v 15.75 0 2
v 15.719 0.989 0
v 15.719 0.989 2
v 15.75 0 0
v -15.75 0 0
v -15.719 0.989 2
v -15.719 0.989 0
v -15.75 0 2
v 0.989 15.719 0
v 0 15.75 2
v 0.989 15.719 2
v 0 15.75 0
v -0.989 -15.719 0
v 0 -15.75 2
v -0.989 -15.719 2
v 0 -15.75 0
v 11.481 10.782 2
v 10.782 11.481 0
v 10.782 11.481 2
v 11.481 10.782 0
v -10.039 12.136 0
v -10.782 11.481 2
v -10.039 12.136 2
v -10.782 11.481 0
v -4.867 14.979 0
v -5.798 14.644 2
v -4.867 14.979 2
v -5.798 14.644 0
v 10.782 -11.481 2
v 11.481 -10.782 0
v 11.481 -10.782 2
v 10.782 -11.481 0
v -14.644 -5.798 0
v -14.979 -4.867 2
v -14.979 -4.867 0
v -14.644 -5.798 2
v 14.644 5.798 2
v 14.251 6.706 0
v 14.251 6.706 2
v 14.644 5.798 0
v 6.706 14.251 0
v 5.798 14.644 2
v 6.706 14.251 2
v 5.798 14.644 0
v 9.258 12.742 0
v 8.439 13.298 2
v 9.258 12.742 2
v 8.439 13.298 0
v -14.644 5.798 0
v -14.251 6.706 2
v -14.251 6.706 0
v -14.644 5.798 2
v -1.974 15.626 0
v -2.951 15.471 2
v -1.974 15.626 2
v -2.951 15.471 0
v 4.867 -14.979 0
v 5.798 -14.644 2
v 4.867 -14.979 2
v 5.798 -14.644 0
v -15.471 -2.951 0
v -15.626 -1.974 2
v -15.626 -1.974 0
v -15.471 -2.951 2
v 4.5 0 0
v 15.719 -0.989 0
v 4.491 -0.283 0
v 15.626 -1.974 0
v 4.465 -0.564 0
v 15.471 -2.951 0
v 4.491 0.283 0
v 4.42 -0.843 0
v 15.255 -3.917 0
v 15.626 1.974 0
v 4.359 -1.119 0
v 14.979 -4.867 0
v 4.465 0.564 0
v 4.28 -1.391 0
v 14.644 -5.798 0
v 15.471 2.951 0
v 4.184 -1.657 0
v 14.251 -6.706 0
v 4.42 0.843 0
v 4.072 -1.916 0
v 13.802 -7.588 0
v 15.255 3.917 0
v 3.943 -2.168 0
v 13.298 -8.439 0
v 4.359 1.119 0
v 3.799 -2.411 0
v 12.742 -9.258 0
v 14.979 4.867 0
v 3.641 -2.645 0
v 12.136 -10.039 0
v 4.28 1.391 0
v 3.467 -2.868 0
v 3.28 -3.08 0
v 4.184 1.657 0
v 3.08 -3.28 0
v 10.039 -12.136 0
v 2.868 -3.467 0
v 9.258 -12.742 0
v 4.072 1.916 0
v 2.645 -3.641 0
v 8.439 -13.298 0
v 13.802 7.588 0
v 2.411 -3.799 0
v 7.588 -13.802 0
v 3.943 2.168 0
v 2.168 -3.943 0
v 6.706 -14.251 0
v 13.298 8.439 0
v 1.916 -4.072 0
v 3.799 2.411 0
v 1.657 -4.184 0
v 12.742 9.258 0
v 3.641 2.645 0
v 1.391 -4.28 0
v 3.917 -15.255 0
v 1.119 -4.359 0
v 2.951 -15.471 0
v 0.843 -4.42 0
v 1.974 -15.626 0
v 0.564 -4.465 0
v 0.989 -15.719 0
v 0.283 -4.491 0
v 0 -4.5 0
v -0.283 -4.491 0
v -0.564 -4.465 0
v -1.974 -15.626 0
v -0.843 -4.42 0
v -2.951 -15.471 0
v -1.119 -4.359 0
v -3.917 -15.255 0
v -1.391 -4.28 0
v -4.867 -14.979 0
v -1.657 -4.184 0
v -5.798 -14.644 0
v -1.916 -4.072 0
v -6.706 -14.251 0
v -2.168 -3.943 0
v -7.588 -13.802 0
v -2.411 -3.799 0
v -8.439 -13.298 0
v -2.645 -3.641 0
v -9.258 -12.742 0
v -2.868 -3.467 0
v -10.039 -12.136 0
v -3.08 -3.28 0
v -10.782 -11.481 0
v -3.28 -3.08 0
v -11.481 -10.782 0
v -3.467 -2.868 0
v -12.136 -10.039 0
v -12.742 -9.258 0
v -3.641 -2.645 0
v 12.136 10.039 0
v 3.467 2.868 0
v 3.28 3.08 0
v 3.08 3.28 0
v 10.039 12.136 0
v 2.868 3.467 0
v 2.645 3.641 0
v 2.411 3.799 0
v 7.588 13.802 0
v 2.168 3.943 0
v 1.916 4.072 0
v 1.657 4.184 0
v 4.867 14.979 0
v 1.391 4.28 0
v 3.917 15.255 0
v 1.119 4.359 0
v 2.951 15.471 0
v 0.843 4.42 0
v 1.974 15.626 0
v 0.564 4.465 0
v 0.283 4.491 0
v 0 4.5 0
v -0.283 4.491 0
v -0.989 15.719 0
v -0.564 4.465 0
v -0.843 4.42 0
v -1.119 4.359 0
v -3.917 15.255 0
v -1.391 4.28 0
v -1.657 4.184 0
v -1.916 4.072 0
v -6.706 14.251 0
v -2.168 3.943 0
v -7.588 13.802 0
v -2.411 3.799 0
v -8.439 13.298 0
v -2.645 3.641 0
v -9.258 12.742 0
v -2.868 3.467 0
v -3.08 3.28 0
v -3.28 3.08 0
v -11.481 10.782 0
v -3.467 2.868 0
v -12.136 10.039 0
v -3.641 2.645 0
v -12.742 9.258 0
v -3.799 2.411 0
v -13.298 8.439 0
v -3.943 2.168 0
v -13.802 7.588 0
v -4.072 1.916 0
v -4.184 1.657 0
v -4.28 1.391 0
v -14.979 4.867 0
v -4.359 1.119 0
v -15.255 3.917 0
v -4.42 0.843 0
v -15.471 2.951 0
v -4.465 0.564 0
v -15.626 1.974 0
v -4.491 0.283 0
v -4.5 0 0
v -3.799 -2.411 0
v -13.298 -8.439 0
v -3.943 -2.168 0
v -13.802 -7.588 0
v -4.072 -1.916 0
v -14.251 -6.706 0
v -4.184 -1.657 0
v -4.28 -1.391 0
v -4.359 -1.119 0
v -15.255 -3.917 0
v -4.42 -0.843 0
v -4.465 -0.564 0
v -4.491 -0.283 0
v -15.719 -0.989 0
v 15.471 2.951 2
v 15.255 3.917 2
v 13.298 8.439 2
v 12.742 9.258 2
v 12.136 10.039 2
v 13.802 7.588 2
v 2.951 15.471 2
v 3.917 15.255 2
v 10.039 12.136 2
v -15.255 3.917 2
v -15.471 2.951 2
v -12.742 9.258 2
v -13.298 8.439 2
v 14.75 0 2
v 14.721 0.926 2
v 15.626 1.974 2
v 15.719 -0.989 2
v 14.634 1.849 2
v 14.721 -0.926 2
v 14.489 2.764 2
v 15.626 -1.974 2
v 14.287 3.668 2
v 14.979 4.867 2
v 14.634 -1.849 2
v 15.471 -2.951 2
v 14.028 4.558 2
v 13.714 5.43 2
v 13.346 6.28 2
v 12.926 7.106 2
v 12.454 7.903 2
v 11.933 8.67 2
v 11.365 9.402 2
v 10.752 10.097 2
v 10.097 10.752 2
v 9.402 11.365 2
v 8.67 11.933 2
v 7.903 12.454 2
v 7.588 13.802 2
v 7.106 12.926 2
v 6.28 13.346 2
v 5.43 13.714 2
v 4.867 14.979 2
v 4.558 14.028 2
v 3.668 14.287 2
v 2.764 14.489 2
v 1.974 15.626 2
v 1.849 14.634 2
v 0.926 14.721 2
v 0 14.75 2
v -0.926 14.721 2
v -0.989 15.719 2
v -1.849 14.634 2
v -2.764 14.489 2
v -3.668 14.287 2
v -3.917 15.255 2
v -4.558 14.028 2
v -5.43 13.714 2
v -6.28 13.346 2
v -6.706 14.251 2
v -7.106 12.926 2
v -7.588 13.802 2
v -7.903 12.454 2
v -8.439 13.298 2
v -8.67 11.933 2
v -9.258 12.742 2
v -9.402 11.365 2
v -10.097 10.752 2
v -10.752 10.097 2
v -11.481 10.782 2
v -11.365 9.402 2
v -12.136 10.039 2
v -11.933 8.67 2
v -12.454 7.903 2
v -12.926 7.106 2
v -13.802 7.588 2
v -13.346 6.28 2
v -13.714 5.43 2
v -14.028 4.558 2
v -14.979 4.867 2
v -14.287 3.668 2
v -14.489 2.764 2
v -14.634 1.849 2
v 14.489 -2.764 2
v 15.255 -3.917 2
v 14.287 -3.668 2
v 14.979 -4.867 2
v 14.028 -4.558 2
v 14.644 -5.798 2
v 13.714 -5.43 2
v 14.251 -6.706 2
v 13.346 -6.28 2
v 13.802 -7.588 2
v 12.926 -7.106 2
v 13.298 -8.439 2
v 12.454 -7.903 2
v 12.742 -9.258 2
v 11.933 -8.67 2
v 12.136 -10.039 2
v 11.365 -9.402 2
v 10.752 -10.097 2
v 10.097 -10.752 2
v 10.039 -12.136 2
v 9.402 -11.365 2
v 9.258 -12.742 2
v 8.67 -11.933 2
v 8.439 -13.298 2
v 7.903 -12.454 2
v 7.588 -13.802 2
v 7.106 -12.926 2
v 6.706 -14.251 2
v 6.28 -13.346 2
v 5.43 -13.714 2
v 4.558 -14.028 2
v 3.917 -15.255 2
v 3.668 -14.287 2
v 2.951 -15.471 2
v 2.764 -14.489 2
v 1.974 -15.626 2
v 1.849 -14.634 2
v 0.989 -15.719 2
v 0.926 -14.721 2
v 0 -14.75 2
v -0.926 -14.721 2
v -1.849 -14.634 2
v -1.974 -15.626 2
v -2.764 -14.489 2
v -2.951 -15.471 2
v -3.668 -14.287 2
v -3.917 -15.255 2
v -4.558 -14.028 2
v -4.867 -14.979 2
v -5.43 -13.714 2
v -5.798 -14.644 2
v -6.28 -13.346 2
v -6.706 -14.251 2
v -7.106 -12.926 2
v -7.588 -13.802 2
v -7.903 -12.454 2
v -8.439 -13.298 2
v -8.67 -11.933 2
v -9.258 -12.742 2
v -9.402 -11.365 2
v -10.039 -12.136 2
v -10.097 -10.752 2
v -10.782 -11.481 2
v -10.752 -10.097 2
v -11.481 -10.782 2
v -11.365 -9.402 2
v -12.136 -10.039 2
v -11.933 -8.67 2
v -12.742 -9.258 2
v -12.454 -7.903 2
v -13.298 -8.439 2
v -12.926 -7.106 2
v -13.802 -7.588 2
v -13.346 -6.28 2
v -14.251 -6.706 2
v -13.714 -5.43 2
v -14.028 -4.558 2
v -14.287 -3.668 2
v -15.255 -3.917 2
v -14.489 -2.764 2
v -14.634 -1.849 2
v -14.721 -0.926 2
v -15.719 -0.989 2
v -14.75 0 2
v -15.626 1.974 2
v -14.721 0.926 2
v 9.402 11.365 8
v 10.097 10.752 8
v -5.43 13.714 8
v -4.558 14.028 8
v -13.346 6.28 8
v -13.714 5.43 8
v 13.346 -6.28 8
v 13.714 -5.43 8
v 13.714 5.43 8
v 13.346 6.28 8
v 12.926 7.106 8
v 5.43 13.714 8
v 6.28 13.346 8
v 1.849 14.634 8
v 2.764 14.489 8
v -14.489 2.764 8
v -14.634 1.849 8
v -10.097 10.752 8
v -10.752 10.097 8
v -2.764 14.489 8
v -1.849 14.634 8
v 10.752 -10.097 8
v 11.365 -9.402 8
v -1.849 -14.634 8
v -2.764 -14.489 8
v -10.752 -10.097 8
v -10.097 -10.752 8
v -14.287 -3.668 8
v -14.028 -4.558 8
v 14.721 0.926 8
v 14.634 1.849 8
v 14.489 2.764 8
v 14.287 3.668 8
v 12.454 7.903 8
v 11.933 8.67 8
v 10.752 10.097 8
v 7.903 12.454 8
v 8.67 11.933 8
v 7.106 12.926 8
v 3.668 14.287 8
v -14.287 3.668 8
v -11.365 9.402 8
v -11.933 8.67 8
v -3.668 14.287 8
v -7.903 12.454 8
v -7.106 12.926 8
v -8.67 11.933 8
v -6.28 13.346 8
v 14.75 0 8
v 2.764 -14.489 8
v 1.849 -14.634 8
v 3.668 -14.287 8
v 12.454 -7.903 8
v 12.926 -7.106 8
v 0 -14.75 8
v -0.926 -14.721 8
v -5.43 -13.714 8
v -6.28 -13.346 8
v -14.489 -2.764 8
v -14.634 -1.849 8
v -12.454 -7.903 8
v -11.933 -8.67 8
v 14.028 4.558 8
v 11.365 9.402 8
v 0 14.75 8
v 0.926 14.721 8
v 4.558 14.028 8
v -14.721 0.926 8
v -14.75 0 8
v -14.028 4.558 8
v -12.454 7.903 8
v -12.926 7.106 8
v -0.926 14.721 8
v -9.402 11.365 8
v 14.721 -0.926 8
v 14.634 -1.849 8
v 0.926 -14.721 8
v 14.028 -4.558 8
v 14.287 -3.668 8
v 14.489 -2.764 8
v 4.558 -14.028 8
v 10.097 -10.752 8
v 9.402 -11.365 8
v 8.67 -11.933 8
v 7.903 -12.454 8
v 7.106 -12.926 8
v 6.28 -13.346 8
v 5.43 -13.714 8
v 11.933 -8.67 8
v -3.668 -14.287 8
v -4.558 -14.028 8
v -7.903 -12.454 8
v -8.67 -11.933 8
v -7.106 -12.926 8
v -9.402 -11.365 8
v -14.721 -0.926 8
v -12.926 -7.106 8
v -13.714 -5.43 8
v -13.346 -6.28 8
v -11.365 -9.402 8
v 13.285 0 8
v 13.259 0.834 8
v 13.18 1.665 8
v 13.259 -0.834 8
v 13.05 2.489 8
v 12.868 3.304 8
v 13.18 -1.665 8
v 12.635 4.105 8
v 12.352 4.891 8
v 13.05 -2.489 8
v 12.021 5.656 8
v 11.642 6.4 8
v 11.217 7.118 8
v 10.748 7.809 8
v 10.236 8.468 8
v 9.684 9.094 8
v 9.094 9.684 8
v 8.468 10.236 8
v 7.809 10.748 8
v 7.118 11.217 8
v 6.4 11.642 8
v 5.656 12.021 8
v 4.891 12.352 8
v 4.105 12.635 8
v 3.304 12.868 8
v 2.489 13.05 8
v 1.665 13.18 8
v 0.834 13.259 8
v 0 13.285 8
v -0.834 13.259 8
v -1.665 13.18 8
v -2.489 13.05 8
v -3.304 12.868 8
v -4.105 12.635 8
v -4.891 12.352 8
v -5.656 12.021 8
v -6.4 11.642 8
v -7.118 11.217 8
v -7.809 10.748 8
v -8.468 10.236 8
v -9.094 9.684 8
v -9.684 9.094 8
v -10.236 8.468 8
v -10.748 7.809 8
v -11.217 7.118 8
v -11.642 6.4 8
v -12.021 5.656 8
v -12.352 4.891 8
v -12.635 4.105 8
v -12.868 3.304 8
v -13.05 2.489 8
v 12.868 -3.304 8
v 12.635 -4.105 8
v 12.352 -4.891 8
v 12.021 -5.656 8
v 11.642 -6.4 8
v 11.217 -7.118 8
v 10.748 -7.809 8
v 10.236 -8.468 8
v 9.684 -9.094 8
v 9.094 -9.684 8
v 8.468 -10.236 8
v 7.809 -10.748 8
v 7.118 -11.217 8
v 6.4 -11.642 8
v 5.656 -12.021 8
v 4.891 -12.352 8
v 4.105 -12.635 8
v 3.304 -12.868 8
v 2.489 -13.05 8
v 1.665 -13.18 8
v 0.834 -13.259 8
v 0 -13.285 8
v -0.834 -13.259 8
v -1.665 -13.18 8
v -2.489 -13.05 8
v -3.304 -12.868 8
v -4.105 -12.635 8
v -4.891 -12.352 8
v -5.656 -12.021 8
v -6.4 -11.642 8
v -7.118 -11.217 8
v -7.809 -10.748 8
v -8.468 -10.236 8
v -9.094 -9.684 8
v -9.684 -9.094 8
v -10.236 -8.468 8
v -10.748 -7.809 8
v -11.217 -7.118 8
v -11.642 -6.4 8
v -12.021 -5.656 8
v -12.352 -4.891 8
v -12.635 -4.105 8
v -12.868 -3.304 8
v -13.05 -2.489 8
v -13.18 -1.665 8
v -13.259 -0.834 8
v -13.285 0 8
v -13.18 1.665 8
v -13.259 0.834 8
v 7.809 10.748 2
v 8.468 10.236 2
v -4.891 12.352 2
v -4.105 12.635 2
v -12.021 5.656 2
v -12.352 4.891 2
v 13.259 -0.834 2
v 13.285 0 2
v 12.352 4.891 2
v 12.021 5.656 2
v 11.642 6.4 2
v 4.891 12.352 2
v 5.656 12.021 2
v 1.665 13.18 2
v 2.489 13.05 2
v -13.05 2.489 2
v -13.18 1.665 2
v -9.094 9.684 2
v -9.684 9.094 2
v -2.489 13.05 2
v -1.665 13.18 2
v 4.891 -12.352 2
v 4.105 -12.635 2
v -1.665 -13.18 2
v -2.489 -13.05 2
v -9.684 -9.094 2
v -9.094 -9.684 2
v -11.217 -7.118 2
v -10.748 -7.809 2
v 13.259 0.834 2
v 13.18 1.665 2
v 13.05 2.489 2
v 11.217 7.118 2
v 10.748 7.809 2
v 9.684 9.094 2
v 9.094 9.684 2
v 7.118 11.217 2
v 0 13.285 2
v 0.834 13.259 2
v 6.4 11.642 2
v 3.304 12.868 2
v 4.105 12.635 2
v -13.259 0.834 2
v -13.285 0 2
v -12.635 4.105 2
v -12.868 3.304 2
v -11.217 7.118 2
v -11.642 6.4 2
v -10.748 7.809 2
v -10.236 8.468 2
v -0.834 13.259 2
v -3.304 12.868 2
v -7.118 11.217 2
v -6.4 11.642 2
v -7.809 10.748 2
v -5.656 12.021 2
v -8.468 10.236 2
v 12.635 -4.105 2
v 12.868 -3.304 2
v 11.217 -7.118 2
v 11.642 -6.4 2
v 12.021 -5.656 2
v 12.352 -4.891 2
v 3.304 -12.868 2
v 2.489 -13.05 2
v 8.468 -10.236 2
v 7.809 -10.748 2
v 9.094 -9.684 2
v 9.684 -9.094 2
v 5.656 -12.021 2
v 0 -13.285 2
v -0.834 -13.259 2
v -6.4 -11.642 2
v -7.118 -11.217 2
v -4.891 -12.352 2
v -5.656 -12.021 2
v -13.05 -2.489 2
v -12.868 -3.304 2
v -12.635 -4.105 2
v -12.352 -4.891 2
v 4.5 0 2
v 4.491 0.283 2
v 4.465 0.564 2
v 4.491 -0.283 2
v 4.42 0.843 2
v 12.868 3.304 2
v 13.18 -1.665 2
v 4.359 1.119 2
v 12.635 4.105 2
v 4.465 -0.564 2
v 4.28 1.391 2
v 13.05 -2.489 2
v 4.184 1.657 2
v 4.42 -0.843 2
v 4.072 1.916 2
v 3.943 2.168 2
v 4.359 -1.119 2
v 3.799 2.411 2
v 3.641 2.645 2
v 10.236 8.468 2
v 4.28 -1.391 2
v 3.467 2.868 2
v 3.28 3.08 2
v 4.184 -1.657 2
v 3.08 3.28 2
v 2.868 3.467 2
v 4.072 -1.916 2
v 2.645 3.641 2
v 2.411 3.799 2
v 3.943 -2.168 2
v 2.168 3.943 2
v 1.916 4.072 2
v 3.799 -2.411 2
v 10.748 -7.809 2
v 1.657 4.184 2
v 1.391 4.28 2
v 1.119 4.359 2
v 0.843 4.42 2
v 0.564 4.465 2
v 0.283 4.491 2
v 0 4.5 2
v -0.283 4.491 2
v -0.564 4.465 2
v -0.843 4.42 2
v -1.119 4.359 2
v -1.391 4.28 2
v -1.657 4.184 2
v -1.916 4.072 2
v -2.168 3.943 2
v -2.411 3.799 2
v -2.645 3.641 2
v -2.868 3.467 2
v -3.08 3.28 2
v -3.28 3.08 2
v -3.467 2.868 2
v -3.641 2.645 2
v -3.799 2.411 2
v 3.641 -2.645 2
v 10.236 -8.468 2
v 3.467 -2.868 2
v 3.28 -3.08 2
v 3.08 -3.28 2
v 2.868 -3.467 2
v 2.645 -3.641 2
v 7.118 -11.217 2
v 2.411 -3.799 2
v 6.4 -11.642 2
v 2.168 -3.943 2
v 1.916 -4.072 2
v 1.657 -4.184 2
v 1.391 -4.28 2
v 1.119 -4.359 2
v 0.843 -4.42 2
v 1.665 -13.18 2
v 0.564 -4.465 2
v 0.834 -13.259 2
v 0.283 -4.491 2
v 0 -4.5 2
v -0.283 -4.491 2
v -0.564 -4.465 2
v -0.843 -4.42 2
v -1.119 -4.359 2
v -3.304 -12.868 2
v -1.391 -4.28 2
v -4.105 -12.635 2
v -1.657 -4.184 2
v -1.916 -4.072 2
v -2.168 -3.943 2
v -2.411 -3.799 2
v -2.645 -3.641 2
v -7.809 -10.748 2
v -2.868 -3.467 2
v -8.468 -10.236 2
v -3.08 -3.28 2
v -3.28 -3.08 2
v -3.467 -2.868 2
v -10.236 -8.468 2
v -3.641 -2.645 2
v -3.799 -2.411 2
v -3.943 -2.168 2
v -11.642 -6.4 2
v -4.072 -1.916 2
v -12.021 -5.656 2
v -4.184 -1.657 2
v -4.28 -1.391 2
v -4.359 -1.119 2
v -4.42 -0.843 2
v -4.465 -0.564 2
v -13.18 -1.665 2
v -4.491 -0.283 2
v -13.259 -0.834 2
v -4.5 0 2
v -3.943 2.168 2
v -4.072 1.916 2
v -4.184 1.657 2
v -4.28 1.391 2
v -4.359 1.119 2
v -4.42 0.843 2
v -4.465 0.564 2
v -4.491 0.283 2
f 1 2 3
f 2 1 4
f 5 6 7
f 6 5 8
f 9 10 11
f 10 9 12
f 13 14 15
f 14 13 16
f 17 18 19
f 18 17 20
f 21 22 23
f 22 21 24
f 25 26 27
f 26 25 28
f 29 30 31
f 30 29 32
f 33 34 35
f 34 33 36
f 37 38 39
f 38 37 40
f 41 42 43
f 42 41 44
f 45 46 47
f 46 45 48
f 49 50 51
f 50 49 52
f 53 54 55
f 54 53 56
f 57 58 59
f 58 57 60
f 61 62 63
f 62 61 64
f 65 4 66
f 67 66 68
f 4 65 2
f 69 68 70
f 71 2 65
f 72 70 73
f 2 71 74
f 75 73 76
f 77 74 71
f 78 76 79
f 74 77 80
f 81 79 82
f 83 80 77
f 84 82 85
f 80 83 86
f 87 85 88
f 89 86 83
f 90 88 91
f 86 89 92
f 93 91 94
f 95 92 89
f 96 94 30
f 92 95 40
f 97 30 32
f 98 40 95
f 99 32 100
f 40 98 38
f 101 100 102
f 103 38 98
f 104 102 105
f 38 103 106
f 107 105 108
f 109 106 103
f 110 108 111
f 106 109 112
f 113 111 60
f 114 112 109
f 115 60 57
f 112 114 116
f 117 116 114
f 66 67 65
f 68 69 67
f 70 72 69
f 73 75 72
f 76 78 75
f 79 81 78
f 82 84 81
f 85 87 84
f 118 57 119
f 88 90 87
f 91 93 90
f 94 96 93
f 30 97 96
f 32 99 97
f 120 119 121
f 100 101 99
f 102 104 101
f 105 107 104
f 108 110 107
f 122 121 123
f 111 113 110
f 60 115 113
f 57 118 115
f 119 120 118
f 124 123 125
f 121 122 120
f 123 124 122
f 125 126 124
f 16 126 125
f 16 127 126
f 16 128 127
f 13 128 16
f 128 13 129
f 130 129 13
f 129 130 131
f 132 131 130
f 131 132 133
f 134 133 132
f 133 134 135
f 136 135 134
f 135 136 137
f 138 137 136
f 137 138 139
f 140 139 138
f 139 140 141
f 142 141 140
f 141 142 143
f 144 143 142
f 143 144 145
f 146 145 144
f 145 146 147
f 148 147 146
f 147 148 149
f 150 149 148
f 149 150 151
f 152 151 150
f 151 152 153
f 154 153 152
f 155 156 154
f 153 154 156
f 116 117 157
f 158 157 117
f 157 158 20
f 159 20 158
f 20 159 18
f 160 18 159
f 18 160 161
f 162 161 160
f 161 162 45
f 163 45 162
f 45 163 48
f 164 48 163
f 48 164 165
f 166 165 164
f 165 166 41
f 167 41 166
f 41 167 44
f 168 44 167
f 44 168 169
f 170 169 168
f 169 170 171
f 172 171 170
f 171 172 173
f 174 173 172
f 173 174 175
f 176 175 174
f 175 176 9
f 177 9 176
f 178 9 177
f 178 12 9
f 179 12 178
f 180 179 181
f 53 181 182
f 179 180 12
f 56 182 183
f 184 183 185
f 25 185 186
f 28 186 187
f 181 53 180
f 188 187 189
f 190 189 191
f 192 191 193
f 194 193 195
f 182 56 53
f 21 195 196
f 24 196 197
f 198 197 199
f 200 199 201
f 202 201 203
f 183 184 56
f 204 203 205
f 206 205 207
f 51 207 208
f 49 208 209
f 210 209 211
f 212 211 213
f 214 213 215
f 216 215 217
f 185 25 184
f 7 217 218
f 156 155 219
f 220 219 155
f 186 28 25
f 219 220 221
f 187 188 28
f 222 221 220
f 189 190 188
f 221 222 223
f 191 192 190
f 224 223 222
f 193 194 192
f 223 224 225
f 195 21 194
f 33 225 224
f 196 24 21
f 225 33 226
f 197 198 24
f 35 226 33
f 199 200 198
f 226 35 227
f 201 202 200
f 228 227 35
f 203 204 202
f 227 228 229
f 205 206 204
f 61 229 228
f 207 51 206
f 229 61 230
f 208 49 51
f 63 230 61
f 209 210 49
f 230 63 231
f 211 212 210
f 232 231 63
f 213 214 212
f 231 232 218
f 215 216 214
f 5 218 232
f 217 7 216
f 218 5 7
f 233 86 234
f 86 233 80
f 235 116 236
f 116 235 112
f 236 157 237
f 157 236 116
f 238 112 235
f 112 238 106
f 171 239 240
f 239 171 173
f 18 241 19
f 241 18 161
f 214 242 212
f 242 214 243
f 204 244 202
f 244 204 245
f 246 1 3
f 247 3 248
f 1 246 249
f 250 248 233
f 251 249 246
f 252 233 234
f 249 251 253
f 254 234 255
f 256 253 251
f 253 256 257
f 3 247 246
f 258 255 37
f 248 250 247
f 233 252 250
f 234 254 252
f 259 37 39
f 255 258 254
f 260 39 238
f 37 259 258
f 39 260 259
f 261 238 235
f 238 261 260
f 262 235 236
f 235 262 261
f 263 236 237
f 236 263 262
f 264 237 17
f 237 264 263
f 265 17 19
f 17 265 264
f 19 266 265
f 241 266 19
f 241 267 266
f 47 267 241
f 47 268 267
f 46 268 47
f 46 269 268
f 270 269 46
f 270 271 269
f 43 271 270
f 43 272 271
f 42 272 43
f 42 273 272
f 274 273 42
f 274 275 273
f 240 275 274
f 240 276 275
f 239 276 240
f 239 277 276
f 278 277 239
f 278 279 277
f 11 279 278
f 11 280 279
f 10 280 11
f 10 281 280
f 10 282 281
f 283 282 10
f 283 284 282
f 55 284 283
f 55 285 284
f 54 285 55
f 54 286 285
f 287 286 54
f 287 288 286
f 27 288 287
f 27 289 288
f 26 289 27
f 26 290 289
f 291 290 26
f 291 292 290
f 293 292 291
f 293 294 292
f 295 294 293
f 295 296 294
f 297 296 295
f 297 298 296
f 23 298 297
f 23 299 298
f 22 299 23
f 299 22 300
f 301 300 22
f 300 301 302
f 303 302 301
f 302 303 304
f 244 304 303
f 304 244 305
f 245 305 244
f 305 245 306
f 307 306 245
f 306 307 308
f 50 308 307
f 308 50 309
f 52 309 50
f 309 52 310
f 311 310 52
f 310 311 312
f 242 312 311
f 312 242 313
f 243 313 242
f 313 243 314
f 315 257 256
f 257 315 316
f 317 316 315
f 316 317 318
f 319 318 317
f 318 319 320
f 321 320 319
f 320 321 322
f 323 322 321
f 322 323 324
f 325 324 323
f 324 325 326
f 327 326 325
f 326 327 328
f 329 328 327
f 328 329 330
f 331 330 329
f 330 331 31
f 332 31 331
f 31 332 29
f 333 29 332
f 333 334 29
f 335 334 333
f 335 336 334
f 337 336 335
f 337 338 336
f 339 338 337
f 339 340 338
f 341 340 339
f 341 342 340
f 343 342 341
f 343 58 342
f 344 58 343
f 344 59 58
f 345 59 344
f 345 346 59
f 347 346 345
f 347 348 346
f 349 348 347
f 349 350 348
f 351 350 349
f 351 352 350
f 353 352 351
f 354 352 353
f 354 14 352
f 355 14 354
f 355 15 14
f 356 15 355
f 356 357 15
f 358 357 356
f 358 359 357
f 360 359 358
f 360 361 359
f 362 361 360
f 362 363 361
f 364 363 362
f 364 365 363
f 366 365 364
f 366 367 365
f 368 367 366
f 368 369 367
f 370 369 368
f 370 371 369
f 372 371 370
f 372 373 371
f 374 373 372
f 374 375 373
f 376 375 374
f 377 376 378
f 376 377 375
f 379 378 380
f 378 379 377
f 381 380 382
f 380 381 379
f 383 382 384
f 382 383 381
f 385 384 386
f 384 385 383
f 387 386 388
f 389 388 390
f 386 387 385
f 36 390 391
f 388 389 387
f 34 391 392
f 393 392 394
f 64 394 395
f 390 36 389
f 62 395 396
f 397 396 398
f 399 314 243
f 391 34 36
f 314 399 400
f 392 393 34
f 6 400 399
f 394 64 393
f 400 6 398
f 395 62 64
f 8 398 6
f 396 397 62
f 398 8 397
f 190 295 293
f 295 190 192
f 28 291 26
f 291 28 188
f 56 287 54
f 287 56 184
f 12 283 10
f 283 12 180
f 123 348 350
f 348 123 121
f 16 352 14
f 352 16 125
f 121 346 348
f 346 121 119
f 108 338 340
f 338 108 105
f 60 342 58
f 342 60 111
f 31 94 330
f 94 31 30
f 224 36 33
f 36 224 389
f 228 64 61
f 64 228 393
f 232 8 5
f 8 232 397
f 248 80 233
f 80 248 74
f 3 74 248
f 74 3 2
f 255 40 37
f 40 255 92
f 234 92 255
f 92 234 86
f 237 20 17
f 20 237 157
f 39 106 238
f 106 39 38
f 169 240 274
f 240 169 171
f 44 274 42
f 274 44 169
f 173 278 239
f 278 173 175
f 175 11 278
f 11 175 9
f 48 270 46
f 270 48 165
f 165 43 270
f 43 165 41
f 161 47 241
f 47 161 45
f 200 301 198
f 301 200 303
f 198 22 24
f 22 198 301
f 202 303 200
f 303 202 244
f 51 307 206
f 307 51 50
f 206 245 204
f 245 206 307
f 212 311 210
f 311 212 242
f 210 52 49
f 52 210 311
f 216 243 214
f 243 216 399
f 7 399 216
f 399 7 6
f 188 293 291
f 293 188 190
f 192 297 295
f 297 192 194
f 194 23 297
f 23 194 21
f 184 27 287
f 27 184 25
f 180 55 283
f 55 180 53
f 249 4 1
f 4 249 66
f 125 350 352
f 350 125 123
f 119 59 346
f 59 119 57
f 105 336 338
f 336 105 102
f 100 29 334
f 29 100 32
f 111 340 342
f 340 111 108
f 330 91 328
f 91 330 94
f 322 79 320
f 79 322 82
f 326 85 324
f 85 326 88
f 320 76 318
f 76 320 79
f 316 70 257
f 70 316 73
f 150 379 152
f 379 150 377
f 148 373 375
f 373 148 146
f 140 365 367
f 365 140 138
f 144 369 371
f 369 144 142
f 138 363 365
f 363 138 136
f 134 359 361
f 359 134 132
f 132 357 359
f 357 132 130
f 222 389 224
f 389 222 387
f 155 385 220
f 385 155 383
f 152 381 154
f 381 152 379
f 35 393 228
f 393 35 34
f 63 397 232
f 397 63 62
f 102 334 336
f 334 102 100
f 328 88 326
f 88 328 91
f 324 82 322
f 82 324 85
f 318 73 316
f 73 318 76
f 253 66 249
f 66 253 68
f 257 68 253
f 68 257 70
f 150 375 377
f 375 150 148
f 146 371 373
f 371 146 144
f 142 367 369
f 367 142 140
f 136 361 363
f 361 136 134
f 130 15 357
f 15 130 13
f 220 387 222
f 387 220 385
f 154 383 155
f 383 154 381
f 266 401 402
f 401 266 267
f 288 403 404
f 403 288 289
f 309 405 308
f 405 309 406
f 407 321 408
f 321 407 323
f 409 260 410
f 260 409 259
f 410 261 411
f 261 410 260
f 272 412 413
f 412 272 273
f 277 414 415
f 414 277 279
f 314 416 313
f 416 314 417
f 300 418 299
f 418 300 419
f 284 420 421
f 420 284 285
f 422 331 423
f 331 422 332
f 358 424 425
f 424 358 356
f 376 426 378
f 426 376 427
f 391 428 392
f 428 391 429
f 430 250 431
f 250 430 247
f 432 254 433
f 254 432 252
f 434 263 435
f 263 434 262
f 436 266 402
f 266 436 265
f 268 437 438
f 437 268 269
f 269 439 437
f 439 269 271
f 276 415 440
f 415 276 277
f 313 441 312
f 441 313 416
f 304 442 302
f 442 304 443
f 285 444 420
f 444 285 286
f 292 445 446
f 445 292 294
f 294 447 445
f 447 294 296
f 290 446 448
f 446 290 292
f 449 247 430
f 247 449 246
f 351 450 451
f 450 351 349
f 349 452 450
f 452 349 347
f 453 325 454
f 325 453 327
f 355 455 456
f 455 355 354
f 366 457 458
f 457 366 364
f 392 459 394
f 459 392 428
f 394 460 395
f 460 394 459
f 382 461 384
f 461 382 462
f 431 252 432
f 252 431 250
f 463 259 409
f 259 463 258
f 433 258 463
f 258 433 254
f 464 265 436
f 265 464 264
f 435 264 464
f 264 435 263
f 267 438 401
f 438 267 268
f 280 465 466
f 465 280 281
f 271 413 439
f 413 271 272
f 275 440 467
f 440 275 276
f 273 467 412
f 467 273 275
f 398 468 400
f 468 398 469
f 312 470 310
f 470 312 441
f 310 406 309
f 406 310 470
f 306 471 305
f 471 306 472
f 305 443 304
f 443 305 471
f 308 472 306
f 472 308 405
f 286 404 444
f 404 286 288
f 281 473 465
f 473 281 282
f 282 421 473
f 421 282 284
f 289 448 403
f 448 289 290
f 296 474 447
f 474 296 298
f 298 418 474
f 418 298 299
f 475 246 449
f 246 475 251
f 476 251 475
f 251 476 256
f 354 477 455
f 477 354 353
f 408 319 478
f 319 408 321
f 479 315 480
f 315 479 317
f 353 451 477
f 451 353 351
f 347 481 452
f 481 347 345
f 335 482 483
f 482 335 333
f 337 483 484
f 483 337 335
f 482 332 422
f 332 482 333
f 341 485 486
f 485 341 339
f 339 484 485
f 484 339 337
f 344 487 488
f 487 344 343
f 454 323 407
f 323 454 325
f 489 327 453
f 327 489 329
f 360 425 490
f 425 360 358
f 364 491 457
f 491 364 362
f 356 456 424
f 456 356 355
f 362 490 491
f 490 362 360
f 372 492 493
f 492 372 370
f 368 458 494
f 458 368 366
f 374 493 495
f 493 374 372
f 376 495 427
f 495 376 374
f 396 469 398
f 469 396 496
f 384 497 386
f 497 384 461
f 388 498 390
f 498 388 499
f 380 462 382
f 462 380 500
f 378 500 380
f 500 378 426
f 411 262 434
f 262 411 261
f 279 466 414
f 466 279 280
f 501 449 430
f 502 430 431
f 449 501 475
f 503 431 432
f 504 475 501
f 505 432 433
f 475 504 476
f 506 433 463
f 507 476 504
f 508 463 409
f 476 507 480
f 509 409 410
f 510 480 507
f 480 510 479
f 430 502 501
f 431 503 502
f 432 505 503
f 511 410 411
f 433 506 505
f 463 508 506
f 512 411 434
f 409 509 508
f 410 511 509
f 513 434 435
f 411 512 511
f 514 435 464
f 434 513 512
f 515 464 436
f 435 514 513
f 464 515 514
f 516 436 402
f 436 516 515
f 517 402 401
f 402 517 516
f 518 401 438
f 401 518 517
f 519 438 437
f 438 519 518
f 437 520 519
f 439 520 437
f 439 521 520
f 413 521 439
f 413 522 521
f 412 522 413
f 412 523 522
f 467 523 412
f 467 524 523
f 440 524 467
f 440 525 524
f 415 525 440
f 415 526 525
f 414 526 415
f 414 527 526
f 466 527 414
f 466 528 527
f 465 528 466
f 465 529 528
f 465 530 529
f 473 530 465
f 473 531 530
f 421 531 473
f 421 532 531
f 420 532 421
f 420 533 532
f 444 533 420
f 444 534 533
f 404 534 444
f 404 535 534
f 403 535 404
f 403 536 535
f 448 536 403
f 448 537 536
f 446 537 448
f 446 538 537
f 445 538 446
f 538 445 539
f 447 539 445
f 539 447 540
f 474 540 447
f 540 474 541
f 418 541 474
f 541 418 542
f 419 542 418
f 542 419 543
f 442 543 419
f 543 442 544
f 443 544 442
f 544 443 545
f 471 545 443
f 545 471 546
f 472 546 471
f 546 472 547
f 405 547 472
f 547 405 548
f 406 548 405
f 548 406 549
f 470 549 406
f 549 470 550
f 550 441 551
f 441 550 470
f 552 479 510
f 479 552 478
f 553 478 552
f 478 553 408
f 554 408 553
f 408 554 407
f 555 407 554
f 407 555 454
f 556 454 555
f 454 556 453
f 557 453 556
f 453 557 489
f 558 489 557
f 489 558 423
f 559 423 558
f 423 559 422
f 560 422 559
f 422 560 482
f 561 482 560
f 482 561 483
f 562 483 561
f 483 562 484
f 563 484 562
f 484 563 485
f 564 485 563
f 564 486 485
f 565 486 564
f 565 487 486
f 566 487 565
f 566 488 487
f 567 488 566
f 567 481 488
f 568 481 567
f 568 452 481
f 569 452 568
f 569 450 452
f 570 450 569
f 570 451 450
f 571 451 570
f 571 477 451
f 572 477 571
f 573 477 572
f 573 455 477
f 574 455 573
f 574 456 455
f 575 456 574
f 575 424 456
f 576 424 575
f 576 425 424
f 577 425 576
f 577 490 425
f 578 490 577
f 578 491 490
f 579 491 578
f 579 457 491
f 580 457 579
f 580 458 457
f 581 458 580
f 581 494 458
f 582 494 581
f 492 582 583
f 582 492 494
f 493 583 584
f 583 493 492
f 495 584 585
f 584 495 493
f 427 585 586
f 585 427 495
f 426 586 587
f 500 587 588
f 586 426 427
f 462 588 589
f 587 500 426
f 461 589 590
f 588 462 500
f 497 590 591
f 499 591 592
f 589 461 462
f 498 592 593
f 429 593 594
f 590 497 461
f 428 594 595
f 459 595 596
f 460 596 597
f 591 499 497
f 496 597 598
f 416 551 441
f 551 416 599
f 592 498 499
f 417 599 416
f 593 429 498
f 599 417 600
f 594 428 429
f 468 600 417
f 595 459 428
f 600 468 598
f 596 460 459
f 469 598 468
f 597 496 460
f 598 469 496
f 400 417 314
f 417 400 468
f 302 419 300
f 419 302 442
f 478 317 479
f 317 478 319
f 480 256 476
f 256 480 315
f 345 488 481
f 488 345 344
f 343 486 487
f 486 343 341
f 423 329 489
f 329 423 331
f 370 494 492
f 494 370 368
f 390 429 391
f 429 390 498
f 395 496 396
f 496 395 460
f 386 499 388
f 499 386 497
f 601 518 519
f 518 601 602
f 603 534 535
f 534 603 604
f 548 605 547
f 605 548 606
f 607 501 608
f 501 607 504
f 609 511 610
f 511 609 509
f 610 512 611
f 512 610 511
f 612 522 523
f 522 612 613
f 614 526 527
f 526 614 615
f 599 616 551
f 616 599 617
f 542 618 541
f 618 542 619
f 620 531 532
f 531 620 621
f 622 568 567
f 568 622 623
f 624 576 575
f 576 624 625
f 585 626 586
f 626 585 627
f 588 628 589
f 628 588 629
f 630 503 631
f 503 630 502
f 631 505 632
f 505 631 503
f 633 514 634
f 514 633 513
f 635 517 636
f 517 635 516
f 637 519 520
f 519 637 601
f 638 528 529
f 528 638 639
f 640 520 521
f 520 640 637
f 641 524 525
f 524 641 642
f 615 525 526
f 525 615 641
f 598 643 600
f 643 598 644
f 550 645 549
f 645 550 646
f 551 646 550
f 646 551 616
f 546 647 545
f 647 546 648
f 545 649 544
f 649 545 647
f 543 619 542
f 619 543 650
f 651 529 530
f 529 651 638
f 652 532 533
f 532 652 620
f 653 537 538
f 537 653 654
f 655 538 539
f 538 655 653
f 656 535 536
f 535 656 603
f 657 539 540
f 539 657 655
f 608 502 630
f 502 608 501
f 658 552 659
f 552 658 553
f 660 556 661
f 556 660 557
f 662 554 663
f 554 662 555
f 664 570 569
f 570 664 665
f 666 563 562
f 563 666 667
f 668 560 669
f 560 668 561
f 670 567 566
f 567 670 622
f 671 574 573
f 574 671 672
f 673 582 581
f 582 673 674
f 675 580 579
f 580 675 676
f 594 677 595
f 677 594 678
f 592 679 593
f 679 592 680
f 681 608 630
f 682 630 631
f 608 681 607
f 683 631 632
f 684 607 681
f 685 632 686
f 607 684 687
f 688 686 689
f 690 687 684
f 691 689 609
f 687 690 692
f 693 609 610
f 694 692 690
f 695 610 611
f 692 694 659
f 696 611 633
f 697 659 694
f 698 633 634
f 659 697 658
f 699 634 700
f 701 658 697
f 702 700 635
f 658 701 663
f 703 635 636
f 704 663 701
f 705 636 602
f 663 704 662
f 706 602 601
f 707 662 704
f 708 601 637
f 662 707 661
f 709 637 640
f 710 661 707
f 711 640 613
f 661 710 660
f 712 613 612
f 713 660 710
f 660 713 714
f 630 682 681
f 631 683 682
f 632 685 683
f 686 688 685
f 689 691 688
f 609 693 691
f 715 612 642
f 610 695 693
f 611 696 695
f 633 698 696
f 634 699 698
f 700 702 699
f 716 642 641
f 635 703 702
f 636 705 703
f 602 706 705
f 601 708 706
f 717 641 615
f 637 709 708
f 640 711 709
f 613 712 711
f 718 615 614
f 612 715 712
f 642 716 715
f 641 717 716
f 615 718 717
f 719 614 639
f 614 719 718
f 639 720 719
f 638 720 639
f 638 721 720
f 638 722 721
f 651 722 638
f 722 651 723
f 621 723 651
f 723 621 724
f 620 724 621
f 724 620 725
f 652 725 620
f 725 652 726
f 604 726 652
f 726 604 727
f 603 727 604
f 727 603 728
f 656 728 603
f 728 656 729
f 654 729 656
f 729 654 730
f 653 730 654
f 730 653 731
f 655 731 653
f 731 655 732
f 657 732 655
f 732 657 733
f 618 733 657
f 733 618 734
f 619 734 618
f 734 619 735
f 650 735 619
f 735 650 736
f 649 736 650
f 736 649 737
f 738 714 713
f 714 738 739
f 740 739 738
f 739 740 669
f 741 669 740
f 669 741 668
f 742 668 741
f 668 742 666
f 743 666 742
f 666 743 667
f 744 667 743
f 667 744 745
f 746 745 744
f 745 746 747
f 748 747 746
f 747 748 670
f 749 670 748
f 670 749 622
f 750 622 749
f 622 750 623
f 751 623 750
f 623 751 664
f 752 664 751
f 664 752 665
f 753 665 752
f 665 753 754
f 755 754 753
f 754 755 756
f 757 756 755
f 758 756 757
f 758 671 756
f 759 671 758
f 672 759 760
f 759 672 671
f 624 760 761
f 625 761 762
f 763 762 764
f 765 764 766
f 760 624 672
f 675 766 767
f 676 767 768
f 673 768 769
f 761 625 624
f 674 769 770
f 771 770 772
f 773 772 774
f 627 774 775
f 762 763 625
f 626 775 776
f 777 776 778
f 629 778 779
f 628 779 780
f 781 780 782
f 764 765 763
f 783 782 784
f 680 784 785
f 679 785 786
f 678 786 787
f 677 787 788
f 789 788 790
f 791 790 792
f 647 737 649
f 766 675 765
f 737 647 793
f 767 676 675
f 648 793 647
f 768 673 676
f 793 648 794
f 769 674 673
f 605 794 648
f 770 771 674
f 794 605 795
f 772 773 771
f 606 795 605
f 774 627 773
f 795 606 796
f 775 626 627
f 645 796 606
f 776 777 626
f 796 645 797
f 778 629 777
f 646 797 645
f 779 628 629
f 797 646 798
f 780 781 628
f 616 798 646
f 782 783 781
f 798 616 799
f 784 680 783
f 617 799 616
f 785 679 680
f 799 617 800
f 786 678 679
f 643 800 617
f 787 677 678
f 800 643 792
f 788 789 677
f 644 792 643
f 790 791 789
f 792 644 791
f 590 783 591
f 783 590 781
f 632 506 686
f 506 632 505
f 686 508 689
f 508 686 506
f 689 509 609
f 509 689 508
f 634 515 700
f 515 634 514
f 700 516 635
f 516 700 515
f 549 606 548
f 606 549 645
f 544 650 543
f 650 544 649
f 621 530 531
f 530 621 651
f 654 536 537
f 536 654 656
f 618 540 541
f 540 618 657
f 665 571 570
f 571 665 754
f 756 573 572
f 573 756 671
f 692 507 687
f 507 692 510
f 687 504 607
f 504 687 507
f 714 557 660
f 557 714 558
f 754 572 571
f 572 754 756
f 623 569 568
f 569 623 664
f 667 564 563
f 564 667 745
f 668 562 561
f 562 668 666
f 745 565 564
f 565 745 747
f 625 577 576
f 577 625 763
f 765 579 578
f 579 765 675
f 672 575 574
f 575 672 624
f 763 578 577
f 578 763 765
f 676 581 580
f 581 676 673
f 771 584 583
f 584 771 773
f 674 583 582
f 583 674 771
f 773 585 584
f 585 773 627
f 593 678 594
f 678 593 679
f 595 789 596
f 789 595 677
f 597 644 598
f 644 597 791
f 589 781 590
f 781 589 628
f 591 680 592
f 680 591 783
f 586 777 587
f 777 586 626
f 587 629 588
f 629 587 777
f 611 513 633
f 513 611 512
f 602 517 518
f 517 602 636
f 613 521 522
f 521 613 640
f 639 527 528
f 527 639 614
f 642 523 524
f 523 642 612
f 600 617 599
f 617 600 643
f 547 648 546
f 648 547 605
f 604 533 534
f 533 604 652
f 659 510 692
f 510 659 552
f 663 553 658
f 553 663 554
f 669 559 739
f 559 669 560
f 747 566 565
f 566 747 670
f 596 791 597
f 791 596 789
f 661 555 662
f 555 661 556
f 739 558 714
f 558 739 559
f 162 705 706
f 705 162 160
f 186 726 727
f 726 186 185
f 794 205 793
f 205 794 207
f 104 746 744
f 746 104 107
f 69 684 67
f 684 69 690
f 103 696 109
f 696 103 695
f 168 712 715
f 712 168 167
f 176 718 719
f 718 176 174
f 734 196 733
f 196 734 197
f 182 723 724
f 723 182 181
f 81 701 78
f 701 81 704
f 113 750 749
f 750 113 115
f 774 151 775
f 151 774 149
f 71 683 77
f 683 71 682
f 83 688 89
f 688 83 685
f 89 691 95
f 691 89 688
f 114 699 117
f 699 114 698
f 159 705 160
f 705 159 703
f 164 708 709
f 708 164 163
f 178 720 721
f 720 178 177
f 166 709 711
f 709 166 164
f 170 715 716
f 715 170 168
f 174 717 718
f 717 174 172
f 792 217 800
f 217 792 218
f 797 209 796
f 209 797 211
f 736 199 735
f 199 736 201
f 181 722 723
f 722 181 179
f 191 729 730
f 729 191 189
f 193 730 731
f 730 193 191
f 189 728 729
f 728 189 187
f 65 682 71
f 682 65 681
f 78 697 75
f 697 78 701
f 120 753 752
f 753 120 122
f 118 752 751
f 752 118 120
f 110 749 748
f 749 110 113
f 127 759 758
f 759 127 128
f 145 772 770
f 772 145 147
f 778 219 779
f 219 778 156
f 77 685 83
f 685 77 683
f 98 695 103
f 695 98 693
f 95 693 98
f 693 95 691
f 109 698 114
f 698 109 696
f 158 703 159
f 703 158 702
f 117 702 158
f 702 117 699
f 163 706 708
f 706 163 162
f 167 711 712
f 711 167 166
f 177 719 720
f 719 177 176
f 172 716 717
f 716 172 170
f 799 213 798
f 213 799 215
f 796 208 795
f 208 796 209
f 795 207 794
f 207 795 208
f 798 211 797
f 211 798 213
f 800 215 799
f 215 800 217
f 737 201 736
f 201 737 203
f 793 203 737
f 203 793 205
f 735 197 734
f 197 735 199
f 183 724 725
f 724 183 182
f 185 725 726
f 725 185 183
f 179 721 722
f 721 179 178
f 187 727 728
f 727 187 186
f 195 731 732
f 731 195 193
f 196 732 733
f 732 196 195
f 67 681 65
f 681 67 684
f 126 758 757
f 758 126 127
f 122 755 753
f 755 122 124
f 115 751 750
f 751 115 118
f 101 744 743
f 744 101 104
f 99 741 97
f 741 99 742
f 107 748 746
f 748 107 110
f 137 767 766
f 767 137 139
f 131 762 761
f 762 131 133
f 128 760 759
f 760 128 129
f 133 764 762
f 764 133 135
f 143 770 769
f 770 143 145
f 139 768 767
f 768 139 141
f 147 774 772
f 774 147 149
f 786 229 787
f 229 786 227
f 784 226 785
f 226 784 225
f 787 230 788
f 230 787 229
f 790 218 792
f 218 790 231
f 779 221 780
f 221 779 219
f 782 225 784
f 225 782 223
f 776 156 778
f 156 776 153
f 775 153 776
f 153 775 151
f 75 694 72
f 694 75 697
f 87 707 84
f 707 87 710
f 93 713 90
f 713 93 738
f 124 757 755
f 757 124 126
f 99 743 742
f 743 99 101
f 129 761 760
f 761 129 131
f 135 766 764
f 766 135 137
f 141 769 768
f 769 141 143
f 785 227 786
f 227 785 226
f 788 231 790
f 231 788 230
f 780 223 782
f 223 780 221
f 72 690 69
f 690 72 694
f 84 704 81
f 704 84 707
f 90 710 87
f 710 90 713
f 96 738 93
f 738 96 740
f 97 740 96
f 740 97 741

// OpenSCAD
//fn=numb of fragments; fa=min angle; fs=min size
//D exterior tuberia mm
$fn=100;
$fa=12;
$fs=2;

DTi=26.57;
//D tubo para la base
Dti=29.5;
Dte=31.5;
//Altura base exterior
He=2;
Hi=6;

//D diafragma
Df=9;
Hf=2;

Ht=He+Hi;

difference(){
difference(){
    union(){
        cylinder(h=He ,d=Dte ,center=false);
        translate ([0,0,He])cylinder($fn=100, $fa=12, $fs=2, h=Hi ,d=Dti ,center=false);
    }
    translate([0,0,Hf])cylinder(h=Ht ,d=DTi ,center=false);
}
translate([0,0,-Hf])cylinder(h=Hf*4 ,d=Df ,center=false);
}
